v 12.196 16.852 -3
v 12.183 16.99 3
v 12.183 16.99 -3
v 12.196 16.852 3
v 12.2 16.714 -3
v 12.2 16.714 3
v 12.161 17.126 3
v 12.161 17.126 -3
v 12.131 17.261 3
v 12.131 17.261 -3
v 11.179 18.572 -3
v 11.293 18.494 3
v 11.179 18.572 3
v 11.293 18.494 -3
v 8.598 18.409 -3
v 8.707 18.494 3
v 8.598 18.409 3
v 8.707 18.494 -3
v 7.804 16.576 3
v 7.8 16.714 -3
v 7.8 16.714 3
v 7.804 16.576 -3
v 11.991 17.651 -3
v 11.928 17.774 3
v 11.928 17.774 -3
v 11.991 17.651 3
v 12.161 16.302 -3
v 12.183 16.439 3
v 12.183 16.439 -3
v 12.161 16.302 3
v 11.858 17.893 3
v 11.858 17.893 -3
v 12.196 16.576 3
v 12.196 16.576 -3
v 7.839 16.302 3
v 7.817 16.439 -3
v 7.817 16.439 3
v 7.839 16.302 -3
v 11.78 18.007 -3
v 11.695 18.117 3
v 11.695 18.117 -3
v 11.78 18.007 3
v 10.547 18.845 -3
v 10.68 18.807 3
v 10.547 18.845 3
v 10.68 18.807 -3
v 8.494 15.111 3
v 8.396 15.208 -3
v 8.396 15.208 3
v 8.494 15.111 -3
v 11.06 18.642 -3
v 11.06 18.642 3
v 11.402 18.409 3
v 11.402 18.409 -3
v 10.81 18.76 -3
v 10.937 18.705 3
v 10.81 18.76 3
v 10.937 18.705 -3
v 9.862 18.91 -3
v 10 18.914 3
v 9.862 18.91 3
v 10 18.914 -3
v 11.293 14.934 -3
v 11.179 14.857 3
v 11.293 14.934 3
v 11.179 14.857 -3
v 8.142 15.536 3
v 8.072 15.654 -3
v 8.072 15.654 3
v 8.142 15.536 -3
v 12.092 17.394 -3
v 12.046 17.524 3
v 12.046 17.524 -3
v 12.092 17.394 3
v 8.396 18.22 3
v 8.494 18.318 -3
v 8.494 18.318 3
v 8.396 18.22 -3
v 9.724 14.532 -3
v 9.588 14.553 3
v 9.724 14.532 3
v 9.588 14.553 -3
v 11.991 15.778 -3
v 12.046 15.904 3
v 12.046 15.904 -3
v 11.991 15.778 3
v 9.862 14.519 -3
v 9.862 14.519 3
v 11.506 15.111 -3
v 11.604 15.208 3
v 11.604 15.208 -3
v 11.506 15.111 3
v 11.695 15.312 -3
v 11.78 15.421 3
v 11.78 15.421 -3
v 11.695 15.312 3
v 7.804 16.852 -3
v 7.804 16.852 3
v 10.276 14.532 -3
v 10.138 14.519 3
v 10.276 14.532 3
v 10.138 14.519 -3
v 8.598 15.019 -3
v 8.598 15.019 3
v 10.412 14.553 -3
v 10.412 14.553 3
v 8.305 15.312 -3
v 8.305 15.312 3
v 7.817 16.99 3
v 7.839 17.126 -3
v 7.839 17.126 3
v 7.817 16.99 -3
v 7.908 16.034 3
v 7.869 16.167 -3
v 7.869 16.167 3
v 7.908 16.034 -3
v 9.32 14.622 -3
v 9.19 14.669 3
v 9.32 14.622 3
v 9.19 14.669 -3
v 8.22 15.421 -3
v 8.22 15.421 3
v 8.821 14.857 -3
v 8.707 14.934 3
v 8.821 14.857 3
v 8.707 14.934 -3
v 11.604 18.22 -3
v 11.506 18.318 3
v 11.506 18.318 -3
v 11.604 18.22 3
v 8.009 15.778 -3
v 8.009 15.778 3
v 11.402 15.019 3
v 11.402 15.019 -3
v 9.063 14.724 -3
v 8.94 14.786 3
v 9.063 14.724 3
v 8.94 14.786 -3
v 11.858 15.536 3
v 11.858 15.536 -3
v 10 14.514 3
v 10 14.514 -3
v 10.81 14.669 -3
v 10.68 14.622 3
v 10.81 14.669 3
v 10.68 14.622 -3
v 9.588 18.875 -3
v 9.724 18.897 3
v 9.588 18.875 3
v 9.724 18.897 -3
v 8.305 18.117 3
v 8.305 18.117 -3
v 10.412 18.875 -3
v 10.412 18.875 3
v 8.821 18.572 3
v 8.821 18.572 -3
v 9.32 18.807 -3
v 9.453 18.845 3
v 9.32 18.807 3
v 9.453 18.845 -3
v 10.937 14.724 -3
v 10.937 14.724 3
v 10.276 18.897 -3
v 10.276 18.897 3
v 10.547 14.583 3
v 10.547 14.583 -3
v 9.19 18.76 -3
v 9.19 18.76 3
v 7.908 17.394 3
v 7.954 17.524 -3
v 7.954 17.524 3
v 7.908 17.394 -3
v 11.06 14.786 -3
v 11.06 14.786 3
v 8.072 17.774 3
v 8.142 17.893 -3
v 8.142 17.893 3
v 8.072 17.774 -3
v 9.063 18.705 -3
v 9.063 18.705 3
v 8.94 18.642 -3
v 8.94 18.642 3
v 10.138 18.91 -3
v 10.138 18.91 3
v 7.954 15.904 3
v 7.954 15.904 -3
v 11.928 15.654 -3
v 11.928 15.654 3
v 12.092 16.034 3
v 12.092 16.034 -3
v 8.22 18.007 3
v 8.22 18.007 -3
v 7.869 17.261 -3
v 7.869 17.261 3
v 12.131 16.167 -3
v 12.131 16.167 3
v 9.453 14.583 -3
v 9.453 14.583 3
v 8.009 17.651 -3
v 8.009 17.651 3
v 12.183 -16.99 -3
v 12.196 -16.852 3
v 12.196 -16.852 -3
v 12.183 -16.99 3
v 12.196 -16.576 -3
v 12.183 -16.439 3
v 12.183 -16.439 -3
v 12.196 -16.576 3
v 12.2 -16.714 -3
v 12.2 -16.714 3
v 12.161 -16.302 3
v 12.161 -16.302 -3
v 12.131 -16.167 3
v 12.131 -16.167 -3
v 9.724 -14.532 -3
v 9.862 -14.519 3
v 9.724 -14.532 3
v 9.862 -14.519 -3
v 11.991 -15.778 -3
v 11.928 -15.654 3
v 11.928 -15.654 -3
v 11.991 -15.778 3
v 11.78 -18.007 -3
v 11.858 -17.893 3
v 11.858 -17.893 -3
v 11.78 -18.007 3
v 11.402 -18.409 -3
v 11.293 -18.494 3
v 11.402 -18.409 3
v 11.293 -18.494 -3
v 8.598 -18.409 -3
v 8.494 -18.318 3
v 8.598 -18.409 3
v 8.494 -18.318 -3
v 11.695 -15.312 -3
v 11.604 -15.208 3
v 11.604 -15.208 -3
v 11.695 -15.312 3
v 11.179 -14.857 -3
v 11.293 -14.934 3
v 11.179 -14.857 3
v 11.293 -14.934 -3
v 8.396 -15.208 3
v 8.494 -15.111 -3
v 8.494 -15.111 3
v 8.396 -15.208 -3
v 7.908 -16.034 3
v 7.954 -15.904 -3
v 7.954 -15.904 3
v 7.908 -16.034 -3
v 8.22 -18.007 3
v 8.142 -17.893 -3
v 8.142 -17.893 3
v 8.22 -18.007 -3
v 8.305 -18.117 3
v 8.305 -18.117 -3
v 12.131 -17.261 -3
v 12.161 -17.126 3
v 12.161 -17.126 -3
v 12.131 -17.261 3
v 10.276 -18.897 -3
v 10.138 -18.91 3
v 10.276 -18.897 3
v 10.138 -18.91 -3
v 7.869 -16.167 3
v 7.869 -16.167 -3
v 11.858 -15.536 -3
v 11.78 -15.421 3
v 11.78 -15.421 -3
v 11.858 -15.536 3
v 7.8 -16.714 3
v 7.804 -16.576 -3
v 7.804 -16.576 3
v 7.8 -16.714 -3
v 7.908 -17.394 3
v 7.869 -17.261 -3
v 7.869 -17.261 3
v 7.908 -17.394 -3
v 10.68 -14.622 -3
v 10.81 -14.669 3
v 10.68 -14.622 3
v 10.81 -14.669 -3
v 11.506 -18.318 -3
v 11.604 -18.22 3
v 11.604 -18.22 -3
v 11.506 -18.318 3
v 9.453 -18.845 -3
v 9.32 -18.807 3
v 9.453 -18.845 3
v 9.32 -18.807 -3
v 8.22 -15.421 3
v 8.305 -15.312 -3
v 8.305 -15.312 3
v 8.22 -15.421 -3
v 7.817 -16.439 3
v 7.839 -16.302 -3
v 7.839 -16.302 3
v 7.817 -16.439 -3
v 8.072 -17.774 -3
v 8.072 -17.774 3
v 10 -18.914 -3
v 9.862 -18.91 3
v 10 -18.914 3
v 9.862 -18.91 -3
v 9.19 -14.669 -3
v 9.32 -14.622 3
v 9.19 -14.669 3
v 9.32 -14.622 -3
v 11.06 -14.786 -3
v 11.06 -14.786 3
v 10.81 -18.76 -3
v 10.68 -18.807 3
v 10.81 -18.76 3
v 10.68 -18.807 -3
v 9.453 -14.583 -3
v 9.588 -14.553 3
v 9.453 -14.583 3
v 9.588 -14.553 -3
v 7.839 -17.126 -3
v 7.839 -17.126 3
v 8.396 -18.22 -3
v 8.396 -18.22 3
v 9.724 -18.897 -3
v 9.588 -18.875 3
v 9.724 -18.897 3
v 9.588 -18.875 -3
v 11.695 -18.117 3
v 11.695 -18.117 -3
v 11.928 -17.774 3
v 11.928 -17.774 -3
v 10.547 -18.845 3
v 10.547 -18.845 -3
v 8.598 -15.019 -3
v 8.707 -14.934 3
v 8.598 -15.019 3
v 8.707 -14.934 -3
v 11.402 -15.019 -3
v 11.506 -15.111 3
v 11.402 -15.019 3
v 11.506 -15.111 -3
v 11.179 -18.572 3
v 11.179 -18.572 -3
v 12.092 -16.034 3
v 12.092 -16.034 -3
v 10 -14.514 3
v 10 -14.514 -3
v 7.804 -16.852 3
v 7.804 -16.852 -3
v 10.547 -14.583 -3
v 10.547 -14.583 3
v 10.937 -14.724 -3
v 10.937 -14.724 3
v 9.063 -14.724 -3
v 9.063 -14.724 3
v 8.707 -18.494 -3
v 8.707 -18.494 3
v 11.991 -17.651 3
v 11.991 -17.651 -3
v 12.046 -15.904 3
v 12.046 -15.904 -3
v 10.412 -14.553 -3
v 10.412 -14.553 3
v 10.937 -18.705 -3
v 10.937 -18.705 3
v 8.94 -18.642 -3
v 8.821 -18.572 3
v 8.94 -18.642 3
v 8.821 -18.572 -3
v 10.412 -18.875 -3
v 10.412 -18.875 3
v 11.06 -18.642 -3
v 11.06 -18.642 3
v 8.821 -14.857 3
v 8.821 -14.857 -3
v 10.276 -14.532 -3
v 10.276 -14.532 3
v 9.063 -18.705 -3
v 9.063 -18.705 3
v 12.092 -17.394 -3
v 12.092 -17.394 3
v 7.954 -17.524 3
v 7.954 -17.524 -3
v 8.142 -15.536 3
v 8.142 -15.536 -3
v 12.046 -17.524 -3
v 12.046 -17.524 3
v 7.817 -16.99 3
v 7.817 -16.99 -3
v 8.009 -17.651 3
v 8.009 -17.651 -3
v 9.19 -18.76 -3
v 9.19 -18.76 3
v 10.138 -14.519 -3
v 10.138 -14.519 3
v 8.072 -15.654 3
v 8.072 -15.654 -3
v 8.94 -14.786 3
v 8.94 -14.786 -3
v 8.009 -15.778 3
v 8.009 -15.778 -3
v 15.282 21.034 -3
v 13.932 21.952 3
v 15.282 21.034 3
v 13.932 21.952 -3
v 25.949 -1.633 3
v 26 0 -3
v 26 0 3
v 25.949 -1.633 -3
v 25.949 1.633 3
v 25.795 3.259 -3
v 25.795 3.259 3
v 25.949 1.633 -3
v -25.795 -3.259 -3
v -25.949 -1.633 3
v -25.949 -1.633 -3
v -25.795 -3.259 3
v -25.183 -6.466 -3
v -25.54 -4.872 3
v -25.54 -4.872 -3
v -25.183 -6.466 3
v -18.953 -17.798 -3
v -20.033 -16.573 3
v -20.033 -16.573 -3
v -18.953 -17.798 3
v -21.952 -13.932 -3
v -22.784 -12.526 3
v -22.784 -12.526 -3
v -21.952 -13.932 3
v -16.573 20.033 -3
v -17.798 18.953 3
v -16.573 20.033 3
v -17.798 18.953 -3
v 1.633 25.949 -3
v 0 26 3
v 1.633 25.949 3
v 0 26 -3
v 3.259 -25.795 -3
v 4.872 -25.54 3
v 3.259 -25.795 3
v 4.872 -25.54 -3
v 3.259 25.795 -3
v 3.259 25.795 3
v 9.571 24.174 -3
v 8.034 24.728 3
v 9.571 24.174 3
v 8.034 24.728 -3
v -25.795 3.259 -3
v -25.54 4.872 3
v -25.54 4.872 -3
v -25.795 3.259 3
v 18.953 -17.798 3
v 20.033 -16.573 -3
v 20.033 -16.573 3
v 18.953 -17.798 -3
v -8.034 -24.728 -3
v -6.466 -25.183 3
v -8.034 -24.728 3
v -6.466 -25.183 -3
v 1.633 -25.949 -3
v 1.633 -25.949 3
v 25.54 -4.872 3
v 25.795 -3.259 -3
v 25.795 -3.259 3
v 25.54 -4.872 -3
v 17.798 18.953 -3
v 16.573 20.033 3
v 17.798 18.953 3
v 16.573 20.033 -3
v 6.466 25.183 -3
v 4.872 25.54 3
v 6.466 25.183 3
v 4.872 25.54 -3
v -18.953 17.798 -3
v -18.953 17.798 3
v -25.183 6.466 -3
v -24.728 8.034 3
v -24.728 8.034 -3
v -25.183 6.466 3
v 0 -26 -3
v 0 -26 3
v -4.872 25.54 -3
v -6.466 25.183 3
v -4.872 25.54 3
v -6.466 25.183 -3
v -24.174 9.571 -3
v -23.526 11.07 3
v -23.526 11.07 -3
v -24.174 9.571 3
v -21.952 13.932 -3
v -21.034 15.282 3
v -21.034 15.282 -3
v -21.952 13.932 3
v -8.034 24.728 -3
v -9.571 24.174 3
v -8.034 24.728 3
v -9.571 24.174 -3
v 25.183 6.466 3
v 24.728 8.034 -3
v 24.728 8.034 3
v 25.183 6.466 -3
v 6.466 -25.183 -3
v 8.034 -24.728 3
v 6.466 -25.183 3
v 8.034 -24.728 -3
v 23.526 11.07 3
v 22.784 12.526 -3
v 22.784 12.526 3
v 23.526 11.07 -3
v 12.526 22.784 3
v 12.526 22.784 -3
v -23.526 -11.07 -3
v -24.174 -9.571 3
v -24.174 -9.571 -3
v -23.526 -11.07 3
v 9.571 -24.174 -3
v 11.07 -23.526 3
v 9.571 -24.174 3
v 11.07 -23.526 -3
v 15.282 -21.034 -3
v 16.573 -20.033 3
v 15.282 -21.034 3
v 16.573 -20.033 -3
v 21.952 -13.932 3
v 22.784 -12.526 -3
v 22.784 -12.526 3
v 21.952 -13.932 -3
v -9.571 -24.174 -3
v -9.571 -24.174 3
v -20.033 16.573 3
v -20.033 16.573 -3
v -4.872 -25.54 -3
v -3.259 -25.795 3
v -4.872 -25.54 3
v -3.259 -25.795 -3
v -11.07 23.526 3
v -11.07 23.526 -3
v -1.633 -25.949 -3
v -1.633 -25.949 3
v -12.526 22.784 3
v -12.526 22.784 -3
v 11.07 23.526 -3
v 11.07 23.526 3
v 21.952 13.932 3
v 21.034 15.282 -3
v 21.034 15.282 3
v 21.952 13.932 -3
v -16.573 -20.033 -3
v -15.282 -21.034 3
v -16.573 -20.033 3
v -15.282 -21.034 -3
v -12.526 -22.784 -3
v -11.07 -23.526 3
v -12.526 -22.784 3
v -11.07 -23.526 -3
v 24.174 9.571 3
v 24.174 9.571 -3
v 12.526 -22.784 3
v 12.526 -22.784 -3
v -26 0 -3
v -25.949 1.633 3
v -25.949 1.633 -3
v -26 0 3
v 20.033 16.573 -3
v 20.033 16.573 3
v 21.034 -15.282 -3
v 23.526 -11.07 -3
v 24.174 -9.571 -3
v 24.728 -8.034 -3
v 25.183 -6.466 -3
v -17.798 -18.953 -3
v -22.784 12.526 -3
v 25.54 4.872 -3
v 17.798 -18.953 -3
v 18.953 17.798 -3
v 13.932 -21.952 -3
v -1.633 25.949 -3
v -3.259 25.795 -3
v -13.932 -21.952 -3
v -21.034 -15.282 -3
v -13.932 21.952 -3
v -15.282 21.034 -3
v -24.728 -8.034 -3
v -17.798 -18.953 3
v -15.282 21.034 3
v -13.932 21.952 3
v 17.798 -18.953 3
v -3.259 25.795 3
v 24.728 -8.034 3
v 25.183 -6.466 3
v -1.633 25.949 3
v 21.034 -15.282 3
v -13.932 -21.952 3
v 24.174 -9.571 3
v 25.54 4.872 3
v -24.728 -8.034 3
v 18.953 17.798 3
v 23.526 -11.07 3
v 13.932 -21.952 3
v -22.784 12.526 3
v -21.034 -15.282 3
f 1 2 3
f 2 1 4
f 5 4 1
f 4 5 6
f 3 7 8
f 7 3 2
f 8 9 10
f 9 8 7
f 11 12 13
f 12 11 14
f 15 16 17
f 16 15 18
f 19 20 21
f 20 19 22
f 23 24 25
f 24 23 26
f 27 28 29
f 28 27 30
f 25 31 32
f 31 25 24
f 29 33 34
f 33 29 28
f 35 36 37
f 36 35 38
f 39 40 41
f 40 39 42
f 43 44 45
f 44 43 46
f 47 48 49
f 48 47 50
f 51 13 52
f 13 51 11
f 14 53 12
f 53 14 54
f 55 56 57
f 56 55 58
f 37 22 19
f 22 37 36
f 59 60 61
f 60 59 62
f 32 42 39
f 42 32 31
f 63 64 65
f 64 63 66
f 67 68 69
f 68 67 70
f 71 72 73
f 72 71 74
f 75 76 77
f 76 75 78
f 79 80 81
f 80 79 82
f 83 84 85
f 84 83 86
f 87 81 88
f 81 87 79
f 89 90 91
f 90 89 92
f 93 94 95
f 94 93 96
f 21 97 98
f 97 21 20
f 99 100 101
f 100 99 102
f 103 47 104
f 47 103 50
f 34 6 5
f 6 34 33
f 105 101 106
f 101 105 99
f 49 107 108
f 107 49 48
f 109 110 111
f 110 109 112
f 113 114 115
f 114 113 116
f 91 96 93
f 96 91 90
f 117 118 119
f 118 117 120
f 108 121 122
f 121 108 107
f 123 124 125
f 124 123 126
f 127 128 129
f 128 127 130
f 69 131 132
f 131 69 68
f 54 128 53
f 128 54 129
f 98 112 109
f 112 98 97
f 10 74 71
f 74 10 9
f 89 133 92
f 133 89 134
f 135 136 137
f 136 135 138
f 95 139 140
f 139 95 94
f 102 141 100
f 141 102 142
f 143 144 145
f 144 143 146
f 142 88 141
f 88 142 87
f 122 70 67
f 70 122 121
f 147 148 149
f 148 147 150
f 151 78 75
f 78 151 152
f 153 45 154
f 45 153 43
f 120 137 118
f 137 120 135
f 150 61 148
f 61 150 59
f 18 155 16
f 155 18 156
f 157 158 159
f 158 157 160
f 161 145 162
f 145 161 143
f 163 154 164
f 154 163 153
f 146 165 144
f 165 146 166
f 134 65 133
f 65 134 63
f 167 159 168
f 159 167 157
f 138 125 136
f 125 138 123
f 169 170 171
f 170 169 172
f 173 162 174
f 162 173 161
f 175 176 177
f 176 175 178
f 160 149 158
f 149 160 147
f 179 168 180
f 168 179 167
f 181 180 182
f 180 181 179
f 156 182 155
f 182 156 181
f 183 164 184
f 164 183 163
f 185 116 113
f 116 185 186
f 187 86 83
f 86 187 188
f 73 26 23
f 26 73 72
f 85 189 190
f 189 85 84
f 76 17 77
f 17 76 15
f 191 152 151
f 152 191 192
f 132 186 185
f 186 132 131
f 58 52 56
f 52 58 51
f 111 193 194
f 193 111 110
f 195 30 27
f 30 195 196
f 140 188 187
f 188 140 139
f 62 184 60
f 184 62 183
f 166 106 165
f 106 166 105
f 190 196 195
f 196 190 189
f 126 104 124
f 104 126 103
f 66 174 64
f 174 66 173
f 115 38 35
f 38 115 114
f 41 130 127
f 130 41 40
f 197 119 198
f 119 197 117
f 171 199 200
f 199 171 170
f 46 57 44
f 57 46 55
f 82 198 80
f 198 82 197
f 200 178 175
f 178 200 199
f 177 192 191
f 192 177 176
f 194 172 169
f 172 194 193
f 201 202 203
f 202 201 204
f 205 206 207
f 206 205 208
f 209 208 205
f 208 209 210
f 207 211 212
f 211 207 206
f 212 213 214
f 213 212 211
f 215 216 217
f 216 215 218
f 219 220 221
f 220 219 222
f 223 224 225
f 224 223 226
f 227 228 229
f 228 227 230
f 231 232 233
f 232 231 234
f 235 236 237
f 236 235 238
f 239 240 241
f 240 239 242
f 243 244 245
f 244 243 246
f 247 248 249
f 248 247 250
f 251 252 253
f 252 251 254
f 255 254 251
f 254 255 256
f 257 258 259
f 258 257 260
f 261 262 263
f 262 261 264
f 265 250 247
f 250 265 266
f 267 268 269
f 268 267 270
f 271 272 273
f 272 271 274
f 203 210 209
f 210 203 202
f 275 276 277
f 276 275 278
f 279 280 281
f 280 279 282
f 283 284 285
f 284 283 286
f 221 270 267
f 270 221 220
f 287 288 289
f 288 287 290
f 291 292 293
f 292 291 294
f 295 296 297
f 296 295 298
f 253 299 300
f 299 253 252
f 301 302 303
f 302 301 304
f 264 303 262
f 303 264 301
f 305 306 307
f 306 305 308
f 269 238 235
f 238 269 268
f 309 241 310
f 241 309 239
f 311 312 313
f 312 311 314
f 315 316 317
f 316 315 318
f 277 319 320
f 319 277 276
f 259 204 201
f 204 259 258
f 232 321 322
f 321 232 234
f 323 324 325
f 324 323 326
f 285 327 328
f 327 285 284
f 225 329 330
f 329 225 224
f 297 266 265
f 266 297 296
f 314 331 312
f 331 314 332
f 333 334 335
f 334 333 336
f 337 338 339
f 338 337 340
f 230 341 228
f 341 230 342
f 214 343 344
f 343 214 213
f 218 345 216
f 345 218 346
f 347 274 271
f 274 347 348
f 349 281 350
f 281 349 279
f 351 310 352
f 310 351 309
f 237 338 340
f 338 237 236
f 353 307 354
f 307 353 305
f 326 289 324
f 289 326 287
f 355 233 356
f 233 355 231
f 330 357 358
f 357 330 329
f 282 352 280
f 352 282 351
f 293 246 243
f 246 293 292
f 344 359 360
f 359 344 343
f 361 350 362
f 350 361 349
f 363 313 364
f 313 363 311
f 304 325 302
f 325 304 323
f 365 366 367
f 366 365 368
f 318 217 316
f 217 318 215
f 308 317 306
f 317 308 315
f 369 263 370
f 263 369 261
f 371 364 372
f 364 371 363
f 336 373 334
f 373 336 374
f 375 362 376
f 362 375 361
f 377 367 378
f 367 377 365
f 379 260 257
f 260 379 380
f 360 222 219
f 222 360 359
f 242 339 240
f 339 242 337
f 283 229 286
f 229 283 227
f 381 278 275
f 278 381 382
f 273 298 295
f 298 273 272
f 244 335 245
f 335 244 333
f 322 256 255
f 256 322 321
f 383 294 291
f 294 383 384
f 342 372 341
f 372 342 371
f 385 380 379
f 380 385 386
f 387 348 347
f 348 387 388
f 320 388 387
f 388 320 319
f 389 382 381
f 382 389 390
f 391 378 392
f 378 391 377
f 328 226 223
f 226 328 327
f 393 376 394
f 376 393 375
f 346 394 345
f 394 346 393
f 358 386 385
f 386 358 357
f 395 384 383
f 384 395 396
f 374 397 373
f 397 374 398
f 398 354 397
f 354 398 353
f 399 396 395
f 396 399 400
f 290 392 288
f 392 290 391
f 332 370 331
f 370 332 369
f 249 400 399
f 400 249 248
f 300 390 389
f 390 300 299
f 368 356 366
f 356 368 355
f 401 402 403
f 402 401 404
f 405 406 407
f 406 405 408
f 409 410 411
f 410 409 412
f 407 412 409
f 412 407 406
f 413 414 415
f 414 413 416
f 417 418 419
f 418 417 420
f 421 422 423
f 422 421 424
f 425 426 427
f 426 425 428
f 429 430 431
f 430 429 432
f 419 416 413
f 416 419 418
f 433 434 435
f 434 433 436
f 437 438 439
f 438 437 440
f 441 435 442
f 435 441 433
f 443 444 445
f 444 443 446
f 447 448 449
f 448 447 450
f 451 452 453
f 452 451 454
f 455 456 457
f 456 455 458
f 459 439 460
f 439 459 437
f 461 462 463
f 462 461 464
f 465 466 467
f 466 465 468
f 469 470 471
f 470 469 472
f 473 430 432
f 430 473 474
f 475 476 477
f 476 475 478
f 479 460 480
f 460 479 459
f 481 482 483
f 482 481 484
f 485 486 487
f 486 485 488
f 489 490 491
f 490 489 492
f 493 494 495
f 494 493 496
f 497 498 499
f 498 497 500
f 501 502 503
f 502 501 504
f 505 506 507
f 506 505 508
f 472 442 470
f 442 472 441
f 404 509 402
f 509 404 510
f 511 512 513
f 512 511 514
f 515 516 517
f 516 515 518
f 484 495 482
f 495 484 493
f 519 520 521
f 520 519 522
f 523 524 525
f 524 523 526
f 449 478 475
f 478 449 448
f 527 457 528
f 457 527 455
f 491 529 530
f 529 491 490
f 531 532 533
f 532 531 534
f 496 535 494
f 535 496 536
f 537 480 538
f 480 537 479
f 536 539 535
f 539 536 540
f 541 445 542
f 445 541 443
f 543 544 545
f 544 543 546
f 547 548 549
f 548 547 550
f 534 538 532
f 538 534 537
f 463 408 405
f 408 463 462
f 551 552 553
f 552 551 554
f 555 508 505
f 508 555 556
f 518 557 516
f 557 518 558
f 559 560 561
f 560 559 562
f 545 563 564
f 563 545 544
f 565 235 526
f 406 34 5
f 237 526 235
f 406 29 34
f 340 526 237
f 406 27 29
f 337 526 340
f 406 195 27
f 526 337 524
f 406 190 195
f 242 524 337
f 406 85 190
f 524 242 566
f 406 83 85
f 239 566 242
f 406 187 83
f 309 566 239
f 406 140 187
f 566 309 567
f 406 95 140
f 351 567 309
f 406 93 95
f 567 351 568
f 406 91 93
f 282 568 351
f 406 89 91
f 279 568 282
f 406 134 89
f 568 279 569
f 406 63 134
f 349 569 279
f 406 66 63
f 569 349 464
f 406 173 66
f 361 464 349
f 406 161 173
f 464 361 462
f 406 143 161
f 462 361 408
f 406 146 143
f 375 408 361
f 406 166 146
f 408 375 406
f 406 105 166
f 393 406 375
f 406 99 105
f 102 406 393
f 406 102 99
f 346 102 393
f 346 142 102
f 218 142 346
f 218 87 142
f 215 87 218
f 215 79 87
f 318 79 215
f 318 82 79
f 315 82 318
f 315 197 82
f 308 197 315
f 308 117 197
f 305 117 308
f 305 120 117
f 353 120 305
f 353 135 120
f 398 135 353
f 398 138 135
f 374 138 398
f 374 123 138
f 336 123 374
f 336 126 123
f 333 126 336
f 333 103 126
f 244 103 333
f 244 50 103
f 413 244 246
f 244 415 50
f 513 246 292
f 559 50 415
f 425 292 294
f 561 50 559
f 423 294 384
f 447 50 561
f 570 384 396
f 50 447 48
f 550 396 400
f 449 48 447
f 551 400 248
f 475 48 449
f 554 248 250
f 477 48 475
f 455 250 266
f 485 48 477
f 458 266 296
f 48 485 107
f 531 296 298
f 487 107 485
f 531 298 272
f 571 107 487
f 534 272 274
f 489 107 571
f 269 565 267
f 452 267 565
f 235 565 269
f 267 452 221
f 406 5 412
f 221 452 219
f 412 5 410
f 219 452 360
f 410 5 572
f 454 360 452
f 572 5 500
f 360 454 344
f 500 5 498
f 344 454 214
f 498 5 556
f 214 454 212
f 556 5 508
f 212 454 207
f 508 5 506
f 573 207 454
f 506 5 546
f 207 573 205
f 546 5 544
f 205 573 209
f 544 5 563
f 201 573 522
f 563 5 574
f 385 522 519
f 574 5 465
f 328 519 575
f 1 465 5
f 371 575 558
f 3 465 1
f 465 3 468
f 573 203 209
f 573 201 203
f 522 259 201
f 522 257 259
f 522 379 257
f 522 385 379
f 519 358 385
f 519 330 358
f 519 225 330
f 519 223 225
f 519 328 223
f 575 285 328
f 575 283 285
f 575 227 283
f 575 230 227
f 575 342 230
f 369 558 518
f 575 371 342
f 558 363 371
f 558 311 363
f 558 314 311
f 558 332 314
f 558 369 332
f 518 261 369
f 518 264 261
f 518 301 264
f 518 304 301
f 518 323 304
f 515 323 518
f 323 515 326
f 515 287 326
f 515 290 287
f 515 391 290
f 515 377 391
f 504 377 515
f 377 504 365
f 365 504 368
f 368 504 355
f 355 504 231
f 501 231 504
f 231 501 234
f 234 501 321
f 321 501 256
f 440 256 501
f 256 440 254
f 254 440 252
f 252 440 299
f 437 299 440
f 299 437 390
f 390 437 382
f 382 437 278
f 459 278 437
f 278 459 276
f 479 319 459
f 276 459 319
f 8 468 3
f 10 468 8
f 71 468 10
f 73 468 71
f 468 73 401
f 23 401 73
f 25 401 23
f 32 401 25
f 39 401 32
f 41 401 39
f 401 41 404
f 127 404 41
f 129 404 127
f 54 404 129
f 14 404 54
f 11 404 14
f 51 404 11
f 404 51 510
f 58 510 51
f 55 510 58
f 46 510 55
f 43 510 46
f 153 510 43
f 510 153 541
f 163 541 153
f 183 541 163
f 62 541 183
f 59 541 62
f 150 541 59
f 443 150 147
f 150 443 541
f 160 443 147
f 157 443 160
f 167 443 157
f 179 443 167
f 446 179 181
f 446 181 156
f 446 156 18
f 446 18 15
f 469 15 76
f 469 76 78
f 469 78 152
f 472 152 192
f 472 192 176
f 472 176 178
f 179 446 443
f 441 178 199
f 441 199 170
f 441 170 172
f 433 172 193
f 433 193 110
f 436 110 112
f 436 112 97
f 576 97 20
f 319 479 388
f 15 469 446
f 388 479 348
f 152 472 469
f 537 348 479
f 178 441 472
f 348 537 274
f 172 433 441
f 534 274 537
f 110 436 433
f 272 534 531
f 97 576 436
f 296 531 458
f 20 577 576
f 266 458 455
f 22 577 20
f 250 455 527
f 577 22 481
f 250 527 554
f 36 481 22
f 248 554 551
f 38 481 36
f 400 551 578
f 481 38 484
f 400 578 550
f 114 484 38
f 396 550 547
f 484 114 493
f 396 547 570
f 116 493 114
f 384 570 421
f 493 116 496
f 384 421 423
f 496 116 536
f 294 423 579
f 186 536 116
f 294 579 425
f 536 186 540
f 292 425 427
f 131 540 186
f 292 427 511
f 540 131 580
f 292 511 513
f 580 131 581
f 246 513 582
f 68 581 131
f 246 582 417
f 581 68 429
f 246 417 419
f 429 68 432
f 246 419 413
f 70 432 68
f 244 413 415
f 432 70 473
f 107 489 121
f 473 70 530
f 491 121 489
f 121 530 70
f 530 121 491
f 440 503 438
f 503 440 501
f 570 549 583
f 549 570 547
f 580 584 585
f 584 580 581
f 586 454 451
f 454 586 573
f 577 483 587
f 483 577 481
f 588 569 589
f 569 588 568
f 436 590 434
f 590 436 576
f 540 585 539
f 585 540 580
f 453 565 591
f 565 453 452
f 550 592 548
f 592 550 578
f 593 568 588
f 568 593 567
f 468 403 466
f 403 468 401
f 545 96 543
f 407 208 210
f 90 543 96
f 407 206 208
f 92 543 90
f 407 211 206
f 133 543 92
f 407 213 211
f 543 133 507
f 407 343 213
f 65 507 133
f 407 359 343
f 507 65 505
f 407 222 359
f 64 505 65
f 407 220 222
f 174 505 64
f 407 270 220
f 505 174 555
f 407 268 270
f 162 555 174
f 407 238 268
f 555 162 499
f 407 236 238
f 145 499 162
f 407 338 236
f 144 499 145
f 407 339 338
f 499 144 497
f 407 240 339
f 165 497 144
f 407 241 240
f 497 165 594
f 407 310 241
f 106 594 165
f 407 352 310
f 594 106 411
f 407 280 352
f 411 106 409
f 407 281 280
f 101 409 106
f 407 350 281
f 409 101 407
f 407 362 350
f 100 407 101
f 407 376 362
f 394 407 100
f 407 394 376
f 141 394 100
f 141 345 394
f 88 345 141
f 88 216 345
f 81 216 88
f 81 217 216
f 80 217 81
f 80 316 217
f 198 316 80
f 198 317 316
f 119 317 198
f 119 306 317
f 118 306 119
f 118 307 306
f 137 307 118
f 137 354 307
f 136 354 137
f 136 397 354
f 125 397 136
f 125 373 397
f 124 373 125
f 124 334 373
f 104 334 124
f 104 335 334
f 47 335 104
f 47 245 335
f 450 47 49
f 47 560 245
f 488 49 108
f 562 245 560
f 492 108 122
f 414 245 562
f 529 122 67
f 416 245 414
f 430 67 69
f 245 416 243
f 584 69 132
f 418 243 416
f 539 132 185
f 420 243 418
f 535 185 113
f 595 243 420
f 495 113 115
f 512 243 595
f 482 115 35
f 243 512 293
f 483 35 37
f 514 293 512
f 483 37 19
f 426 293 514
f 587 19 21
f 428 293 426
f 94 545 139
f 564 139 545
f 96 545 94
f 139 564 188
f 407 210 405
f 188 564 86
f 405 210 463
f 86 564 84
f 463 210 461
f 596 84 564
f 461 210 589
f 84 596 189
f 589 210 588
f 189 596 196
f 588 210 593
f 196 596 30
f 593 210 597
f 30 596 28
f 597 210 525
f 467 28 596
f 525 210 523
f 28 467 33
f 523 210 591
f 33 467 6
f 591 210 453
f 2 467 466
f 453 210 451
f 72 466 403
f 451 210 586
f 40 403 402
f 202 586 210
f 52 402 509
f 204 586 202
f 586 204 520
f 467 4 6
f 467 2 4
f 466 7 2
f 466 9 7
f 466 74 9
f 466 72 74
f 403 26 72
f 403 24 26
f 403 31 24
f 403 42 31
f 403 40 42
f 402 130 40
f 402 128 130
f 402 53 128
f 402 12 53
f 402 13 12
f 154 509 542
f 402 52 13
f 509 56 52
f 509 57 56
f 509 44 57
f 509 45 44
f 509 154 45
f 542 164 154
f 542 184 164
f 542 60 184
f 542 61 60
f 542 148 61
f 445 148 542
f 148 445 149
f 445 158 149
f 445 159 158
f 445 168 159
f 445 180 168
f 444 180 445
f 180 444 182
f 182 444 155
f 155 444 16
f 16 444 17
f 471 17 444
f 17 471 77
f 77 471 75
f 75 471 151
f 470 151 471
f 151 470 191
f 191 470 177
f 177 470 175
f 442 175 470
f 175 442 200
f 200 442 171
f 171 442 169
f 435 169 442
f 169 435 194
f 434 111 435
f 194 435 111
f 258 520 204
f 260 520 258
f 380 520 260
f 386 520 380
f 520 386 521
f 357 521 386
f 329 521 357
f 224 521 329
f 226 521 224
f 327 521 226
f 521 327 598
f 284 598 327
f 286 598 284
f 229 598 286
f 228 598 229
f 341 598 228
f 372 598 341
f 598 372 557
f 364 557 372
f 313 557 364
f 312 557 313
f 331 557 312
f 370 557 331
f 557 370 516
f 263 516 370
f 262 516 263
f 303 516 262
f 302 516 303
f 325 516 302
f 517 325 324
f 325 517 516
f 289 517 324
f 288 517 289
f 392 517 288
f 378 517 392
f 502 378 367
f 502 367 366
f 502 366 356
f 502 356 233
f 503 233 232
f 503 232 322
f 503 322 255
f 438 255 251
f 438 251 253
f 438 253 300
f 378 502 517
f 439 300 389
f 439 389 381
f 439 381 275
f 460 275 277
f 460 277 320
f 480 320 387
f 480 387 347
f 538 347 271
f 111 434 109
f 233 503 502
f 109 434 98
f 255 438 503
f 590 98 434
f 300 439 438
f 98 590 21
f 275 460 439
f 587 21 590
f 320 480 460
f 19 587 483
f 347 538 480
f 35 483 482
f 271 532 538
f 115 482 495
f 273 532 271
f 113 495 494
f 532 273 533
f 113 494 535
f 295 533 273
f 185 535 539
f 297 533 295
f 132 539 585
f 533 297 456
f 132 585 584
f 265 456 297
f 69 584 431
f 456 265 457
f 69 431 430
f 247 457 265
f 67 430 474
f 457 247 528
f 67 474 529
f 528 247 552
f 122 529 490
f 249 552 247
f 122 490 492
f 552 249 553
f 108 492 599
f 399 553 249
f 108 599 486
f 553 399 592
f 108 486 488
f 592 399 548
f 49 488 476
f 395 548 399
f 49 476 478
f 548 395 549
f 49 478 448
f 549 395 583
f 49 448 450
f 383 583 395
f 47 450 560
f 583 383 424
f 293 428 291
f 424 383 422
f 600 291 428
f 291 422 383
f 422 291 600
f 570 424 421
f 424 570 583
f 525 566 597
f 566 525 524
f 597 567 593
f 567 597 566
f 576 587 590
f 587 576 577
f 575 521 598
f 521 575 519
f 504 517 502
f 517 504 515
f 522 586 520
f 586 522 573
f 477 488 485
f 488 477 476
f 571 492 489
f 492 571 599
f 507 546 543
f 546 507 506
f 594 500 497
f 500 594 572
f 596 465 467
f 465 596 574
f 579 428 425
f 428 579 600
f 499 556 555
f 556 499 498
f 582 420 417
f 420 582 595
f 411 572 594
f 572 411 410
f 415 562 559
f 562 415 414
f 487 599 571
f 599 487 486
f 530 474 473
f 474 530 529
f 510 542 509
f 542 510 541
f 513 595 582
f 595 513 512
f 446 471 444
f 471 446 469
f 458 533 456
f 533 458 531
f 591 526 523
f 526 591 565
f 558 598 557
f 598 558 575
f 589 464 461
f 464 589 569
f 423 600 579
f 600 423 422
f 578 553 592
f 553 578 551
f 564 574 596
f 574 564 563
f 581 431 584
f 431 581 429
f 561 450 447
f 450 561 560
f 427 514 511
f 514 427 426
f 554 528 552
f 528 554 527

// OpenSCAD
$fn = 100;
difference()
{
  cylinder(h = 6, r = 26, center = true);
  translate(v = [10, 0, 0])
  {
    union()
    {
      translate(v = [0, 16.714285714285715, 0])
      {
        cylinder(h = 6.03, r = 2.2, center = true);
      }
      translate(v = [0, -16.714285714285715, 0])
      {
        cylinder(h = 6.03, r = 2.2, center = true);
      }
    }
  }
}
